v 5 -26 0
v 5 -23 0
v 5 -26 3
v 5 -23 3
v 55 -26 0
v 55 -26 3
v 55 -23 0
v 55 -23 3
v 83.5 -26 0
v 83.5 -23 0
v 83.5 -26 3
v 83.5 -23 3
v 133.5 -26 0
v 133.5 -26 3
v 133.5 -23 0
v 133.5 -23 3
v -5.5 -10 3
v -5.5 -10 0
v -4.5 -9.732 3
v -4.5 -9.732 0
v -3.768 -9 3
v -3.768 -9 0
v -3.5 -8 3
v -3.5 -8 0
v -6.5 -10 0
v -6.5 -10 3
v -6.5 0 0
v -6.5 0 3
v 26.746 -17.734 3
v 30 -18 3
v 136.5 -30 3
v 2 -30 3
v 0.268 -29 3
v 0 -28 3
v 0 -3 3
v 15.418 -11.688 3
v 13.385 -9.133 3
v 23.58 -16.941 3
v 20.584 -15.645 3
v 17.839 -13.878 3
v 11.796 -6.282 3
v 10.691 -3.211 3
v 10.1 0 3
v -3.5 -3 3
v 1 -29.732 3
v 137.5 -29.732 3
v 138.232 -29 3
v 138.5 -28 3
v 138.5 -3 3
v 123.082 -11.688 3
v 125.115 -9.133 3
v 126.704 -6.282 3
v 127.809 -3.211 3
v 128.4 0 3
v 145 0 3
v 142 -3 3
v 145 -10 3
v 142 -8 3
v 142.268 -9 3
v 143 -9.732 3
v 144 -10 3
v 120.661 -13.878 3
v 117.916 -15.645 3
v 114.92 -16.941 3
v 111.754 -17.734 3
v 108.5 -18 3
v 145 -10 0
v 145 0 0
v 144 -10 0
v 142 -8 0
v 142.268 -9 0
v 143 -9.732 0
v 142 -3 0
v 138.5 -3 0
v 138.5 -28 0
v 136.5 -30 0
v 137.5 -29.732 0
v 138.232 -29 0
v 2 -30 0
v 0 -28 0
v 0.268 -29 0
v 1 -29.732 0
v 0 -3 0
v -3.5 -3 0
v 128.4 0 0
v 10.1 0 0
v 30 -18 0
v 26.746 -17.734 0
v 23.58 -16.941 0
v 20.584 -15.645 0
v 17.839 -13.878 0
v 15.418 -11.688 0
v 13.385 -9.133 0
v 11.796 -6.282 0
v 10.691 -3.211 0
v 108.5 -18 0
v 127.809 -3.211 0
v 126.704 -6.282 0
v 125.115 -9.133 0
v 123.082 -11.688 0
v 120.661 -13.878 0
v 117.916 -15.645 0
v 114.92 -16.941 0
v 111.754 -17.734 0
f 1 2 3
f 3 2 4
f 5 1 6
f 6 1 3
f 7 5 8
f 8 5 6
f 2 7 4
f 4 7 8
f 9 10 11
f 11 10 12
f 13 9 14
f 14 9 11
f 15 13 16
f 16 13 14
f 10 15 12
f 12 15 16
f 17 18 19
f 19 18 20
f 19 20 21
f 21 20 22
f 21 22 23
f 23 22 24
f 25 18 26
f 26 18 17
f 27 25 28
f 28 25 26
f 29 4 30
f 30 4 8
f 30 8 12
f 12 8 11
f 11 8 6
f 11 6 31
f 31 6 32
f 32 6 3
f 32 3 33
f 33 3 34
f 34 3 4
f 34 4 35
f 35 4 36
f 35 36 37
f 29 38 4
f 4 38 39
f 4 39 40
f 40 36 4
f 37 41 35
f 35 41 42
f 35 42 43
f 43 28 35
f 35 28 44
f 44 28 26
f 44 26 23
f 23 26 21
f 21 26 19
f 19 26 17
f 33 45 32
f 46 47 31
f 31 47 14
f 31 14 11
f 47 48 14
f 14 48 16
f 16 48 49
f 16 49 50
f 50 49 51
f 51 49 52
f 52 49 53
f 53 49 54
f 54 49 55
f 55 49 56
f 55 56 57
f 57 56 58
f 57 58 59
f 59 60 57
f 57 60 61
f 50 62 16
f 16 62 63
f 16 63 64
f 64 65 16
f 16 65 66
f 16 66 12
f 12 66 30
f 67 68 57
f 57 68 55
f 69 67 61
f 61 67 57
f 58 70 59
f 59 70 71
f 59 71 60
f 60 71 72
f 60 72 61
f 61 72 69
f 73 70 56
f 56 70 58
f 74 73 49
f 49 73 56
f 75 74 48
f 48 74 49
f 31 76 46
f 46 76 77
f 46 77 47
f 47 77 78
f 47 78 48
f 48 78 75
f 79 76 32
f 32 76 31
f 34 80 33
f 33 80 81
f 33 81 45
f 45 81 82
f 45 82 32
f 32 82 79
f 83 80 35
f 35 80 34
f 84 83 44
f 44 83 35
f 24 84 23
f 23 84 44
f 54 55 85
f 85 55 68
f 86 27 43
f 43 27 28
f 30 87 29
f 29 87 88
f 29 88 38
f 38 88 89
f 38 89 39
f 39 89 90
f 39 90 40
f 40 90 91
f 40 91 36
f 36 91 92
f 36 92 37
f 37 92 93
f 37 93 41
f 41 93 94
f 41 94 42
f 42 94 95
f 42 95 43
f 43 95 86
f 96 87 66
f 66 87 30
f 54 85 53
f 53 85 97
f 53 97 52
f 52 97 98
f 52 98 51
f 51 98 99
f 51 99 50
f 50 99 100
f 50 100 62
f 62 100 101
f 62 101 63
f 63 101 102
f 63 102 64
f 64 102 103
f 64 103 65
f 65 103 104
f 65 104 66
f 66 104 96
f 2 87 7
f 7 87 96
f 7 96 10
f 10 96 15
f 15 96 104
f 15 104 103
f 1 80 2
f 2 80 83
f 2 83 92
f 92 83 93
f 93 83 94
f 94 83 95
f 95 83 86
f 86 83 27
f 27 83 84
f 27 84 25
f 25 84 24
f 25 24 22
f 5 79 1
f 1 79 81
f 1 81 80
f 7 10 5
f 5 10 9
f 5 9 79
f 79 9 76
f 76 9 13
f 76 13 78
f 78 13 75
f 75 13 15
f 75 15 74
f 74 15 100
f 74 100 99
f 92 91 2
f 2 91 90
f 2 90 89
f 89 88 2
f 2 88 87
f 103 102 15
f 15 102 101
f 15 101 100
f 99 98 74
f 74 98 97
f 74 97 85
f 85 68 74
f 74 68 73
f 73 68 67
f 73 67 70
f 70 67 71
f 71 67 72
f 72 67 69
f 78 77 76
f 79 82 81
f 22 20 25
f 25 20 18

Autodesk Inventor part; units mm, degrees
ref_plane "YZ Plane" through (0, 0, 0) normal (1, 0, 0) x (0, 1, 0)
ref_plane "XZ Plane" through (0, 0, 0) normal (0, 1, 0) x (-1, 0, 0)
ref_plane "XY Plane" through (0, 0, 0) normal (0, 0, 1) x (1, 0, 0)
sketch "Sketch1" plane through (0, 0, 0) normal (0, 0, 1) x (1, 0, 0)
  line L0 (0, 0) -> (138.5, 0)
  line L1 (138.5, 0) -> (138.5, -28)
  line L2 (136.5, -30) -> (2, -30)
  line L3 (0, -28) -> (0, 0)
  line L4 (0, 0) -> (-3.5, 0)
  line L5 (-3.5, 0) -> (-3.5, -3)
  line L6 (-3.5, -3) -> (0, -3)
  line L7 (0, -3) -> (0, 0)
  line L8 (-3.5, 0) -> (-6.5, 0)
  line L9 (-6.5, 0) -> (-6.5, -10)
  line L10 (-6.5, -10) -> (-5.5, -10)
  line L11 (-3.5, -8) -> (-3.5, 0)
  line L12 (138.5, -3) -> (142, -3)
  line L13 (142, -3) -> (142, 0)
  line L14 (142, 0) -> (138.5, 0)
  line L15 (138.5, 0) -> (138.5, -3)
  line L16 (142, 0) -> (145, 0)
  line L17 (145, 0) -> (145, -10)
  line L18 (145, -10) -> (144, -10)
  line L19 (142, -8) -> (142, 0)
  arc A0 (-5.5, -10) -> (-3.5, -8) centre (-5.5, -8) ccw
  arc A1 (142, -8) -> (144, -10) centre (144, -8) ccw
  line L20 (5, -23) -> (55, -23)
  line L21 (55, -23) -> (55, -26)
  line L22 (55, -26) -> (5, -26)
  line L23 (5, -26) -> (5, -23)
  line L24 (83.5, -23) -> (133.5, -23)
  line L25 (133.5, -23) -> (133.5, -26)
  line L26 (133.5, -26) -> (83.5, -26)
  line L27 (83.5, -26) -> (83.5, -23)
  arc A2 (0, -28) -> (2, -30) centre (2, -28) ccw
  arc A3 (136.5, -30) -> (138.5, -28) centre (136.5, -28) ccw
  point P0 (138.5, -30)
  point P1 (0, -30)
  point P2 (-3.5, -10)
  point P3 (142, -10)
  dimension "d0" = 138.5
  dimension "d1" = 30
  dimension "d2" = 3.5
  dimension "d3" = 3
  dimension "d4" = 3
  dimension "d5" = 10
  dimension "d6" = 3.5
  dimension "d7" = 3
  dimension "d8" = 3
  dimension "d9" = 10
  dimension "d10" = 2
  dimension "d11" = 3
  dimension "d12" = 20
  dimension "d13" = 5
  dimension "d14" = 50
  dimension "d15" = 3
  dimension "d16" = 5
  dimension "d17" = 50
  dimension "d18" = 2
extrude "Extrusion1" add sketch "Sketch1" along normal blind 3
sketch "Sketch2" plane through (0, 0, 3) normal (0, 0, 1) x (1, 0, 0)
  line L0 (145, 0) -> (-6.5, 0) projected
  line L1 (10, 0) -> (128.5, 0)
  line L2 (128.5, 0) -> (128.5, 2)
  line L3 (108.5, -18) -> (30, -18)
  line L4 (10, 2) -> (10, 0)
  line L5 (5, -23) -> (55, -23) projected
  line L6 (0, -3) -> (0, -28) projected
  line L7 (138.5, -28) -> (138.5, -3) projected
  arc A0 (10, 2) -> (30, -18) centre (30, 2) ccw
  arc A1 (108.5, -18) -> (128.5, 2) centre (108.5, 2) ccw
  point P0 (0, 0)
  point P1 (128.3997, 0)
  point P2 (10.1003, 0)
  dimension "d21" = 5
  dimension "d22" = 10
  dimension "d23" = 10
  dimension "d24" = 20
extrude "Extrusion2" cut sketch "Sketch2" against normal blind 10 contours A1 L3 A0 L0
sketch "Sketch3" plane through (0, 0, 3) normal (0, 0, 1) x (1, 0, 0)
  arc A0 (10.1003, 0) -> (30, -18) centre (30, 2) ccw projected
  line L0 (10.1003, 0) -> (-6.5, 0) projected
  line L1 (-6.5, 0) -> (-6.5, -10) projected
  line L2 (-6.5, -10) -> (-5.5, -10) projected
  arc A1 (-5.5, -10) -> (-3.5, -8) centre (-5.5, -8) ccw projected
  line L3 (-3.5, -8) -> (-3.5, -3) projected
  line L4 (-3.5, -3) -> (0, -3) projected
  line L5 (0, -3) -> (0, -28) projected
  arc A2 (0, -28) -> (2, -30) centre (2, -28) ccw projected
  line L6 (2, -30) -> (136.5, -30) projected
  arc A3 (136.5, -30) -> (138.5, -28) centre (136.5, -28) ccw projected
  line L7 (138.5, -28) -> (138.5, -3) projected
  line L8 (138.5, -3) -> (142, -3) projected
  line L9 (142, -3) -> (142, -8) projected
  arc A4 (142, -8) -> (144, -10) centre (144, -8) ccw projected
  line L10 (144, -10) -> (145, -10) projected
  line L11 (145, -10) -> (145, 0) projected
  line L12 (145, 0) -> (128.3997, 0) projected
  arc A5 (108.5, -18) -> (128.3997, 0) centre (108.5, 2) ccw projected
  line L13 (108.5, -18) -> (30, -18) projected
  line L14 (83.5, -23) -> (133.5, -23) projected
  line L15 (133.5, -23) -> (133.5, -26) projected
  line L16 (133.5, -26) -> (83.5, -26) projected
  line L17 (83.5, -26) -> (83.5, -23) projected
  line L18 (5, -23) -> (55, -23) projected
  line L19 (55, -23) -> (55, -26) projected
  line L20 (55, -26) -> (5, -26) projected
  line L21 (5, -26) -> (5, -23) projected
  point P0 (0, 0)
equation "\"d15\" = d11"
equation "\"d16\" = d13"
equation "\"d17\" = d14"
properties part number "side"
